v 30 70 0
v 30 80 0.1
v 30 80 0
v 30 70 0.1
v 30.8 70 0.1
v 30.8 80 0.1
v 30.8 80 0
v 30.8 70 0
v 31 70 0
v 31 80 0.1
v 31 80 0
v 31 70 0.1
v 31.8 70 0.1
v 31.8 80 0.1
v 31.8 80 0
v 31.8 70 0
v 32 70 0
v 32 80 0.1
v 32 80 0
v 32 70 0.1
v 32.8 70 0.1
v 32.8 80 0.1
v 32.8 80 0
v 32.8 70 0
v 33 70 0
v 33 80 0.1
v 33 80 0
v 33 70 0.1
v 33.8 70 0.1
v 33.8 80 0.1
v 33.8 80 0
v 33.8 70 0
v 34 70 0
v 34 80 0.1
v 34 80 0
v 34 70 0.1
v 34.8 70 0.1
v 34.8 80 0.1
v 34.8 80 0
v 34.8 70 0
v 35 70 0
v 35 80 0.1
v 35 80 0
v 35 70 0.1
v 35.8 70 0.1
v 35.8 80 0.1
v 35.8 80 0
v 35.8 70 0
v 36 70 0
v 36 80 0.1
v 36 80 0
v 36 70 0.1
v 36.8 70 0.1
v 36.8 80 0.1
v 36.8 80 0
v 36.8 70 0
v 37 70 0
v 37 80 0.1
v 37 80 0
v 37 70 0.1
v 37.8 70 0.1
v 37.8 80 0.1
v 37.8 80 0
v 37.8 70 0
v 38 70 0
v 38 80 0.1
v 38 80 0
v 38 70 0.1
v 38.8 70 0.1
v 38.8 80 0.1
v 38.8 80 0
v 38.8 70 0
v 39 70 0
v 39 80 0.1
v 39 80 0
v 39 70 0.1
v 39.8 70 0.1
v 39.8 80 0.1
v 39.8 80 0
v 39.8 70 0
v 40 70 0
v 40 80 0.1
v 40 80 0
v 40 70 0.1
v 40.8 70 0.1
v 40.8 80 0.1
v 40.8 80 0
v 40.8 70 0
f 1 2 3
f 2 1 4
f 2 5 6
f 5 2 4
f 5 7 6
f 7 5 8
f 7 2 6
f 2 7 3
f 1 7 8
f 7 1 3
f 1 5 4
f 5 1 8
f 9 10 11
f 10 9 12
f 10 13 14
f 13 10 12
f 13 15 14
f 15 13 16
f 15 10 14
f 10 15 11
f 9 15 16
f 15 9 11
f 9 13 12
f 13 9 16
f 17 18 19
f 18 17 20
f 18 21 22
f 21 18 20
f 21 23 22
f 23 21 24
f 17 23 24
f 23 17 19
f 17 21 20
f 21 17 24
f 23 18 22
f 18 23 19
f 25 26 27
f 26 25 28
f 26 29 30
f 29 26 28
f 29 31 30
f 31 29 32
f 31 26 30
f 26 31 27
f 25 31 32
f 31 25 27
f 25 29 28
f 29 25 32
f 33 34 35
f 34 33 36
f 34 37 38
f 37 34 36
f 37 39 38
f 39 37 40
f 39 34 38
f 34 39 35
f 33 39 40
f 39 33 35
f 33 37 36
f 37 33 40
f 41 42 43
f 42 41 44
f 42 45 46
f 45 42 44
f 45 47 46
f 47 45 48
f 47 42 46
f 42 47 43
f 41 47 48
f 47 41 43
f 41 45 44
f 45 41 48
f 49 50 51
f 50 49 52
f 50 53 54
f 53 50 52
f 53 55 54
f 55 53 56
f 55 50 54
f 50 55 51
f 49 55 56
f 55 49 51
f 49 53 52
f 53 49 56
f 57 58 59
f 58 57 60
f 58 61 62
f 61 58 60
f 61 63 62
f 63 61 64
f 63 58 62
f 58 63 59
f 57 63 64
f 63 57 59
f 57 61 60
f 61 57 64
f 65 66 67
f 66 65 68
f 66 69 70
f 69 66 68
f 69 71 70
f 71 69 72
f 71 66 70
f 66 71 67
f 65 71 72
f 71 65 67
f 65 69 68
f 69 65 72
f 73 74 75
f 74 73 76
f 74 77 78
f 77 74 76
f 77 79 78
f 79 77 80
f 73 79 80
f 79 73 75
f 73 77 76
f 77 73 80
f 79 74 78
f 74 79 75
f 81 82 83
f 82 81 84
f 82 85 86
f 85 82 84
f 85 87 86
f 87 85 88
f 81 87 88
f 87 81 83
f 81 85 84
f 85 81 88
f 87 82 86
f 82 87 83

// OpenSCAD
translate([10+20,10+60,0])
        for (i = [0 : 10]){
            translate([i,0,0])
                cube(size = [0.8,10,0.1]);
    }
